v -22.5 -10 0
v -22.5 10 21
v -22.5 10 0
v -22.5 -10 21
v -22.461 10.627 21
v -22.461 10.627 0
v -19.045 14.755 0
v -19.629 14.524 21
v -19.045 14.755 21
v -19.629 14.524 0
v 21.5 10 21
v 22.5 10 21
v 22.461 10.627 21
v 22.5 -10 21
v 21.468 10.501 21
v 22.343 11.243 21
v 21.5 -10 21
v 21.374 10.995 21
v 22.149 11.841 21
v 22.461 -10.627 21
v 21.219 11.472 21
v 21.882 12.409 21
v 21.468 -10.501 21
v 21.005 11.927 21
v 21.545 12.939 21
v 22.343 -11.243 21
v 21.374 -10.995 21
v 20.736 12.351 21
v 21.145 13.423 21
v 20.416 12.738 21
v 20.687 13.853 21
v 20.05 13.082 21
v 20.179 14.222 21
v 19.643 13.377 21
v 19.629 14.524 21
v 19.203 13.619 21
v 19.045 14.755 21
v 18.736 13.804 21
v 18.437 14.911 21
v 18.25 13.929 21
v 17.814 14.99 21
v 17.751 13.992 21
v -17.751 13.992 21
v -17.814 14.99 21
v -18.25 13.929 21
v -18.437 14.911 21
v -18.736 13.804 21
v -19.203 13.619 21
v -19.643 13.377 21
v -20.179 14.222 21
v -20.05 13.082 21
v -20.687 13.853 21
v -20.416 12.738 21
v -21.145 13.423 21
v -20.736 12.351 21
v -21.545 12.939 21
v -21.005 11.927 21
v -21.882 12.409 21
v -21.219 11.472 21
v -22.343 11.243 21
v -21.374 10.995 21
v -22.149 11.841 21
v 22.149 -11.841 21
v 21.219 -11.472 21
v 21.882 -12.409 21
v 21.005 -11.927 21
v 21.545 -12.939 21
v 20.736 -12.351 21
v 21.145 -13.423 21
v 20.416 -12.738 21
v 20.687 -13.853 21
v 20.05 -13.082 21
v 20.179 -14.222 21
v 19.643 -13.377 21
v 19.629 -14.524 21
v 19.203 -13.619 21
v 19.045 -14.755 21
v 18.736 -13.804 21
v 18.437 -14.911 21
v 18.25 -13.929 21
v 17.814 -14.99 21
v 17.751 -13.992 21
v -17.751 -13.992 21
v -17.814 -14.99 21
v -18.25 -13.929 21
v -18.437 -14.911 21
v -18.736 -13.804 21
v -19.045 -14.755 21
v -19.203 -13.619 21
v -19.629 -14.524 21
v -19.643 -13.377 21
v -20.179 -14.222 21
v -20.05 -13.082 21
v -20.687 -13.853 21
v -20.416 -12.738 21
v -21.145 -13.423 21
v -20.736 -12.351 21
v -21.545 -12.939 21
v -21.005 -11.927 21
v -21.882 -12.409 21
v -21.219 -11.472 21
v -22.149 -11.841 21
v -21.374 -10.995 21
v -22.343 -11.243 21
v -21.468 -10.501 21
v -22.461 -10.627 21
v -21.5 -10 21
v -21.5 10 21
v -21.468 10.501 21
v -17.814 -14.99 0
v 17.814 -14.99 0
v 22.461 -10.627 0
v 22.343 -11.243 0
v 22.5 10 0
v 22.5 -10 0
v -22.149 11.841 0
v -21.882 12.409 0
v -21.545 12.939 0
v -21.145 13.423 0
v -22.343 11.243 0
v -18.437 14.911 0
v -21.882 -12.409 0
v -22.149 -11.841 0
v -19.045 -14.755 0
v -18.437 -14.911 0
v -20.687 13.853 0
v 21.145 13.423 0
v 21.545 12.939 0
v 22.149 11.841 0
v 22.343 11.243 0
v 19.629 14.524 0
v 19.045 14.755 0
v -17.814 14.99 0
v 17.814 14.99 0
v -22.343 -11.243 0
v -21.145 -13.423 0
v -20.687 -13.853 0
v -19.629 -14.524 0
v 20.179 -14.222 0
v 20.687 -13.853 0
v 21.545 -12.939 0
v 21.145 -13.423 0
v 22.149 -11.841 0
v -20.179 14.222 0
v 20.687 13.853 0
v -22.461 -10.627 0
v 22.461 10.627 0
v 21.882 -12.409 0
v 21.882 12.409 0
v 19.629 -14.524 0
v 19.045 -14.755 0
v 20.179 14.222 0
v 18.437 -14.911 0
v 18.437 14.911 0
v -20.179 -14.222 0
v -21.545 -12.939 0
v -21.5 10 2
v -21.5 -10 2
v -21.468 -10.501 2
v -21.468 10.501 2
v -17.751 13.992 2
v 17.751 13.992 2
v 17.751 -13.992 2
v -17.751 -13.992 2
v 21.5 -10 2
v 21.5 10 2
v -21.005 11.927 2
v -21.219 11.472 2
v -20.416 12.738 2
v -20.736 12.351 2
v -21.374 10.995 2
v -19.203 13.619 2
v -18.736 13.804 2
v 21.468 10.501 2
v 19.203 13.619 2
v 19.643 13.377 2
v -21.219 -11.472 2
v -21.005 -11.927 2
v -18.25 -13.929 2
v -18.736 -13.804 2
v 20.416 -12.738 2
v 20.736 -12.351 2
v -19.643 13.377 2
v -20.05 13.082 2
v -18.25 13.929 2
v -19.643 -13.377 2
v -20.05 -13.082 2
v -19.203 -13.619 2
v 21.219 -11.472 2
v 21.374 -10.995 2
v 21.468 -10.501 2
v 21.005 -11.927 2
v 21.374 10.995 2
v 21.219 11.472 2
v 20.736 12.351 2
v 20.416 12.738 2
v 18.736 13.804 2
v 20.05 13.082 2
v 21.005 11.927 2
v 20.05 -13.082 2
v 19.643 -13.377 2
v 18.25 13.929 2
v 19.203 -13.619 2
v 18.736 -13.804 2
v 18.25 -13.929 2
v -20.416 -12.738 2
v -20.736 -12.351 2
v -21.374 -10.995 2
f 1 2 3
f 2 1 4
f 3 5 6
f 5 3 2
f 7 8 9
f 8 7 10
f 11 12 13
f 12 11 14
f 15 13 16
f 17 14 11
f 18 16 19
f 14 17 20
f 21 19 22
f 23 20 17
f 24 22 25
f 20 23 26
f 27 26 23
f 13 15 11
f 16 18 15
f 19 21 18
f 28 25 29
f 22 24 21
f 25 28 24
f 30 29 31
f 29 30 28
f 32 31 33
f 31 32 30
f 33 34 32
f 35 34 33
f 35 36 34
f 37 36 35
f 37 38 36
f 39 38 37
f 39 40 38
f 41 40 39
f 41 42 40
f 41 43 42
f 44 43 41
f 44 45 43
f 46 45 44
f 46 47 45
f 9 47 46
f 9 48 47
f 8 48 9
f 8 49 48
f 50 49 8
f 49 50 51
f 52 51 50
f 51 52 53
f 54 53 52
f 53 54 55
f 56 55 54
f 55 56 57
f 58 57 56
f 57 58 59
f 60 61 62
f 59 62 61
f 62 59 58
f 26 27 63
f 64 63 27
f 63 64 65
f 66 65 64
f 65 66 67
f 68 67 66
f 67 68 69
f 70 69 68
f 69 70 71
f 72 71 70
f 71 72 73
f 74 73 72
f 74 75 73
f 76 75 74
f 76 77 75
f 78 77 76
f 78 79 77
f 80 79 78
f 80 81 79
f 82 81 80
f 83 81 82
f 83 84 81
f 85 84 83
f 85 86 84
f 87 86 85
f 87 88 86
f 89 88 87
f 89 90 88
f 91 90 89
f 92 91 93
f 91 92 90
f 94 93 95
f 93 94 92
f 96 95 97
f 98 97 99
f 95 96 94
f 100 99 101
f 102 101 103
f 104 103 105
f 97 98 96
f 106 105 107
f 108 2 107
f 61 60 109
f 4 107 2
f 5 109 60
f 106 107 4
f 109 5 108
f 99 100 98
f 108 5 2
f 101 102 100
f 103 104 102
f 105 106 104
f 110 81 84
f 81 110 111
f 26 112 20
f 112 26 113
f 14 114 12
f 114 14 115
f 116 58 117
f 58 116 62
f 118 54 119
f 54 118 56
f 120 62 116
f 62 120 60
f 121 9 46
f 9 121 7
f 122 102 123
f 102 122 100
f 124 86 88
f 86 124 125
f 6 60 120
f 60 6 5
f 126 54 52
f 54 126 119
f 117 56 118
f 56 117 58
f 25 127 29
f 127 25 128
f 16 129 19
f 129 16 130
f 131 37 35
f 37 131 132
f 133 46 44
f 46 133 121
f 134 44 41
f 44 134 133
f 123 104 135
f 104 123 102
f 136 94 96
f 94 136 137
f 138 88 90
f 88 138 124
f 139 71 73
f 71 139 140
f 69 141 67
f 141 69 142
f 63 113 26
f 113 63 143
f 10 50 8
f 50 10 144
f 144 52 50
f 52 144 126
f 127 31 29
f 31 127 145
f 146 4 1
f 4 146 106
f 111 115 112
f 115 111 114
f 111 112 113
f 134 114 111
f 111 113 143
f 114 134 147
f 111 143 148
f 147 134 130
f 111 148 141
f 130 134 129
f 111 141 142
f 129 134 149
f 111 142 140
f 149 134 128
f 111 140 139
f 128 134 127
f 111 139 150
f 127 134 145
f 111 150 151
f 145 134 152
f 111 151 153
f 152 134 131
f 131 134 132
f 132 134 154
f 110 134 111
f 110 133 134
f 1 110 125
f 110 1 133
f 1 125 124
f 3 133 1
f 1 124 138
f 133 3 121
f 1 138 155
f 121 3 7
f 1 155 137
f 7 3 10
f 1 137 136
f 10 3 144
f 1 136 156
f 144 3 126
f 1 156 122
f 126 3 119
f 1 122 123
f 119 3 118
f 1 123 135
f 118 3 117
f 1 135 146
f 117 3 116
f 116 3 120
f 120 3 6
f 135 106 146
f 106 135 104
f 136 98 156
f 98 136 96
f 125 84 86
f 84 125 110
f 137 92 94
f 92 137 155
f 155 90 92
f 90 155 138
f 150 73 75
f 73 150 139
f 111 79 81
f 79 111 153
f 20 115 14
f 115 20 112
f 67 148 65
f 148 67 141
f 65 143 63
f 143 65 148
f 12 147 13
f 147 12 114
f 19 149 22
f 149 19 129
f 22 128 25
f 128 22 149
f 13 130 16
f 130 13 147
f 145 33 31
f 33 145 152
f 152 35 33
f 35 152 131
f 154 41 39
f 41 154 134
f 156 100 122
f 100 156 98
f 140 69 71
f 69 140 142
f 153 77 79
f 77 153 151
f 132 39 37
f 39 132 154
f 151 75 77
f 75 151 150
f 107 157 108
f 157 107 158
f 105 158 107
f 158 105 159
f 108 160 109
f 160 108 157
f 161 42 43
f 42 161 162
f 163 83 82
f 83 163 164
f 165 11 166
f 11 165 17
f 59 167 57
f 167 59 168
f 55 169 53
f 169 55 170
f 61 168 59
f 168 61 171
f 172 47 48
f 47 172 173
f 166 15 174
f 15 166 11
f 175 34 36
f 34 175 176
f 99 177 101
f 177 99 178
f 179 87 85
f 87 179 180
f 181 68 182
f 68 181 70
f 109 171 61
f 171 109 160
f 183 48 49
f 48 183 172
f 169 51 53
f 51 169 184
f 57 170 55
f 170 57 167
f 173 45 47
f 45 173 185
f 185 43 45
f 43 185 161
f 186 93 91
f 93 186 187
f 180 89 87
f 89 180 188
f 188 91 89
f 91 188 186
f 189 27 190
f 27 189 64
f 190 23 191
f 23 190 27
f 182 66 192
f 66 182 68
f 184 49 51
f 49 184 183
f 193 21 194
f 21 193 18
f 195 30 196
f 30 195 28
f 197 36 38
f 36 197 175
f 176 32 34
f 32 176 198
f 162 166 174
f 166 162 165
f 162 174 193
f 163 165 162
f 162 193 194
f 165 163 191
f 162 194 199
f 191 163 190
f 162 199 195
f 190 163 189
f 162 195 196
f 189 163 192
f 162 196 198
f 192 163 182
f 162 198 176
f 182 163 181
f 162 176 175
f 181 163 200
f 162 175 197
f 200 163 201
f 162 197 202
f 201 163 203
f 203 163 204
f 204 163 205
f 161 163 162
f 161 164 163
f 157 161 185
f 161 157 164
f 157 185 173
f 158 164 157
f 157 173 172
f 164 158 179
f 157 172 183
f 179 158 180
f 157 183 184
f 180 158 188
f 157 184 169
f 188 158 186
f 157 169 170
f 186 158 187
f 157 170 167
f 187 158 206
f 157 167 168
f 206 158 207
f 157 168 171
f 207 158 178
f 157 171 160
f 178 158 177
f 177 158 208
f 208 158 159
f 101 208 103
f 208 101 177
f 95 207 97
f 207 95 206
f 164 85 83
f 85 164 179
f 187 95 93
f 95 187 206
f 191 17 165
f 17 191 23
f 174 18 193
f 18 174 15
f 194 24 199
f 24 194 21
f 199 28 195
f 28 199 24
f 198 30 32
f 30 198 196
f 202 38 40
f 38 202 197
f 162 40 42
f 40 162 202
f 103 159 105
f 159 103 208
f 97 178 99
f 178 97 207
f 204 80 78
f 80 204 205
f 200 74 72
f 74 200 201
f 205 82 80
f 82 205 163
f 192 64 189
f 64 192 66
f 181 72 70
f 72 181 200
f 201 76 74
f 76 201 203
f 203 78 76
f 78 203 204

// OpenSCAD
$fn = 50;


difference() {
	union() {
		hull() {
			translate(v = [-17.5000000000, 10.0000000000, 0]) {
				cylinder(h = 21, r = 5);
			}
			translate(v = [17.5000000000, 10.0000000000, 0]) {
				cylinder(h = 21, r = 5);
			}
			translate(v = [-17.5000000000, -10.0000000000, 0]) {
				cylinder(h = 21, r = 5);
			}
			translate(v = [17.5000000000, -10.0000000000, 0]) {
				cylinder(h = 21, r = 5);
			}
		}
	}
	union() {
		translate(v = [0, 0, 2]) {
			hull() {
				translate(v = [-17.5000000000, 10.0000000000, 0]) {
					cylinder(h = 19, r = 4);
				}
				translate(v = [17.5000000000, 10.0000000000, 0]) {
					cylinder(h = 19, r = 4);
				}
				translate(v = [-17.5000000000, -10.0000000000, 0]) {
					cylinder(h = 19, r = 4);
				}
				translate(v = [17.5000000000, -10.0000000000, 0]) {
					cylinder(h = 19, r = 4);
				}
			}
		}
	}
}
